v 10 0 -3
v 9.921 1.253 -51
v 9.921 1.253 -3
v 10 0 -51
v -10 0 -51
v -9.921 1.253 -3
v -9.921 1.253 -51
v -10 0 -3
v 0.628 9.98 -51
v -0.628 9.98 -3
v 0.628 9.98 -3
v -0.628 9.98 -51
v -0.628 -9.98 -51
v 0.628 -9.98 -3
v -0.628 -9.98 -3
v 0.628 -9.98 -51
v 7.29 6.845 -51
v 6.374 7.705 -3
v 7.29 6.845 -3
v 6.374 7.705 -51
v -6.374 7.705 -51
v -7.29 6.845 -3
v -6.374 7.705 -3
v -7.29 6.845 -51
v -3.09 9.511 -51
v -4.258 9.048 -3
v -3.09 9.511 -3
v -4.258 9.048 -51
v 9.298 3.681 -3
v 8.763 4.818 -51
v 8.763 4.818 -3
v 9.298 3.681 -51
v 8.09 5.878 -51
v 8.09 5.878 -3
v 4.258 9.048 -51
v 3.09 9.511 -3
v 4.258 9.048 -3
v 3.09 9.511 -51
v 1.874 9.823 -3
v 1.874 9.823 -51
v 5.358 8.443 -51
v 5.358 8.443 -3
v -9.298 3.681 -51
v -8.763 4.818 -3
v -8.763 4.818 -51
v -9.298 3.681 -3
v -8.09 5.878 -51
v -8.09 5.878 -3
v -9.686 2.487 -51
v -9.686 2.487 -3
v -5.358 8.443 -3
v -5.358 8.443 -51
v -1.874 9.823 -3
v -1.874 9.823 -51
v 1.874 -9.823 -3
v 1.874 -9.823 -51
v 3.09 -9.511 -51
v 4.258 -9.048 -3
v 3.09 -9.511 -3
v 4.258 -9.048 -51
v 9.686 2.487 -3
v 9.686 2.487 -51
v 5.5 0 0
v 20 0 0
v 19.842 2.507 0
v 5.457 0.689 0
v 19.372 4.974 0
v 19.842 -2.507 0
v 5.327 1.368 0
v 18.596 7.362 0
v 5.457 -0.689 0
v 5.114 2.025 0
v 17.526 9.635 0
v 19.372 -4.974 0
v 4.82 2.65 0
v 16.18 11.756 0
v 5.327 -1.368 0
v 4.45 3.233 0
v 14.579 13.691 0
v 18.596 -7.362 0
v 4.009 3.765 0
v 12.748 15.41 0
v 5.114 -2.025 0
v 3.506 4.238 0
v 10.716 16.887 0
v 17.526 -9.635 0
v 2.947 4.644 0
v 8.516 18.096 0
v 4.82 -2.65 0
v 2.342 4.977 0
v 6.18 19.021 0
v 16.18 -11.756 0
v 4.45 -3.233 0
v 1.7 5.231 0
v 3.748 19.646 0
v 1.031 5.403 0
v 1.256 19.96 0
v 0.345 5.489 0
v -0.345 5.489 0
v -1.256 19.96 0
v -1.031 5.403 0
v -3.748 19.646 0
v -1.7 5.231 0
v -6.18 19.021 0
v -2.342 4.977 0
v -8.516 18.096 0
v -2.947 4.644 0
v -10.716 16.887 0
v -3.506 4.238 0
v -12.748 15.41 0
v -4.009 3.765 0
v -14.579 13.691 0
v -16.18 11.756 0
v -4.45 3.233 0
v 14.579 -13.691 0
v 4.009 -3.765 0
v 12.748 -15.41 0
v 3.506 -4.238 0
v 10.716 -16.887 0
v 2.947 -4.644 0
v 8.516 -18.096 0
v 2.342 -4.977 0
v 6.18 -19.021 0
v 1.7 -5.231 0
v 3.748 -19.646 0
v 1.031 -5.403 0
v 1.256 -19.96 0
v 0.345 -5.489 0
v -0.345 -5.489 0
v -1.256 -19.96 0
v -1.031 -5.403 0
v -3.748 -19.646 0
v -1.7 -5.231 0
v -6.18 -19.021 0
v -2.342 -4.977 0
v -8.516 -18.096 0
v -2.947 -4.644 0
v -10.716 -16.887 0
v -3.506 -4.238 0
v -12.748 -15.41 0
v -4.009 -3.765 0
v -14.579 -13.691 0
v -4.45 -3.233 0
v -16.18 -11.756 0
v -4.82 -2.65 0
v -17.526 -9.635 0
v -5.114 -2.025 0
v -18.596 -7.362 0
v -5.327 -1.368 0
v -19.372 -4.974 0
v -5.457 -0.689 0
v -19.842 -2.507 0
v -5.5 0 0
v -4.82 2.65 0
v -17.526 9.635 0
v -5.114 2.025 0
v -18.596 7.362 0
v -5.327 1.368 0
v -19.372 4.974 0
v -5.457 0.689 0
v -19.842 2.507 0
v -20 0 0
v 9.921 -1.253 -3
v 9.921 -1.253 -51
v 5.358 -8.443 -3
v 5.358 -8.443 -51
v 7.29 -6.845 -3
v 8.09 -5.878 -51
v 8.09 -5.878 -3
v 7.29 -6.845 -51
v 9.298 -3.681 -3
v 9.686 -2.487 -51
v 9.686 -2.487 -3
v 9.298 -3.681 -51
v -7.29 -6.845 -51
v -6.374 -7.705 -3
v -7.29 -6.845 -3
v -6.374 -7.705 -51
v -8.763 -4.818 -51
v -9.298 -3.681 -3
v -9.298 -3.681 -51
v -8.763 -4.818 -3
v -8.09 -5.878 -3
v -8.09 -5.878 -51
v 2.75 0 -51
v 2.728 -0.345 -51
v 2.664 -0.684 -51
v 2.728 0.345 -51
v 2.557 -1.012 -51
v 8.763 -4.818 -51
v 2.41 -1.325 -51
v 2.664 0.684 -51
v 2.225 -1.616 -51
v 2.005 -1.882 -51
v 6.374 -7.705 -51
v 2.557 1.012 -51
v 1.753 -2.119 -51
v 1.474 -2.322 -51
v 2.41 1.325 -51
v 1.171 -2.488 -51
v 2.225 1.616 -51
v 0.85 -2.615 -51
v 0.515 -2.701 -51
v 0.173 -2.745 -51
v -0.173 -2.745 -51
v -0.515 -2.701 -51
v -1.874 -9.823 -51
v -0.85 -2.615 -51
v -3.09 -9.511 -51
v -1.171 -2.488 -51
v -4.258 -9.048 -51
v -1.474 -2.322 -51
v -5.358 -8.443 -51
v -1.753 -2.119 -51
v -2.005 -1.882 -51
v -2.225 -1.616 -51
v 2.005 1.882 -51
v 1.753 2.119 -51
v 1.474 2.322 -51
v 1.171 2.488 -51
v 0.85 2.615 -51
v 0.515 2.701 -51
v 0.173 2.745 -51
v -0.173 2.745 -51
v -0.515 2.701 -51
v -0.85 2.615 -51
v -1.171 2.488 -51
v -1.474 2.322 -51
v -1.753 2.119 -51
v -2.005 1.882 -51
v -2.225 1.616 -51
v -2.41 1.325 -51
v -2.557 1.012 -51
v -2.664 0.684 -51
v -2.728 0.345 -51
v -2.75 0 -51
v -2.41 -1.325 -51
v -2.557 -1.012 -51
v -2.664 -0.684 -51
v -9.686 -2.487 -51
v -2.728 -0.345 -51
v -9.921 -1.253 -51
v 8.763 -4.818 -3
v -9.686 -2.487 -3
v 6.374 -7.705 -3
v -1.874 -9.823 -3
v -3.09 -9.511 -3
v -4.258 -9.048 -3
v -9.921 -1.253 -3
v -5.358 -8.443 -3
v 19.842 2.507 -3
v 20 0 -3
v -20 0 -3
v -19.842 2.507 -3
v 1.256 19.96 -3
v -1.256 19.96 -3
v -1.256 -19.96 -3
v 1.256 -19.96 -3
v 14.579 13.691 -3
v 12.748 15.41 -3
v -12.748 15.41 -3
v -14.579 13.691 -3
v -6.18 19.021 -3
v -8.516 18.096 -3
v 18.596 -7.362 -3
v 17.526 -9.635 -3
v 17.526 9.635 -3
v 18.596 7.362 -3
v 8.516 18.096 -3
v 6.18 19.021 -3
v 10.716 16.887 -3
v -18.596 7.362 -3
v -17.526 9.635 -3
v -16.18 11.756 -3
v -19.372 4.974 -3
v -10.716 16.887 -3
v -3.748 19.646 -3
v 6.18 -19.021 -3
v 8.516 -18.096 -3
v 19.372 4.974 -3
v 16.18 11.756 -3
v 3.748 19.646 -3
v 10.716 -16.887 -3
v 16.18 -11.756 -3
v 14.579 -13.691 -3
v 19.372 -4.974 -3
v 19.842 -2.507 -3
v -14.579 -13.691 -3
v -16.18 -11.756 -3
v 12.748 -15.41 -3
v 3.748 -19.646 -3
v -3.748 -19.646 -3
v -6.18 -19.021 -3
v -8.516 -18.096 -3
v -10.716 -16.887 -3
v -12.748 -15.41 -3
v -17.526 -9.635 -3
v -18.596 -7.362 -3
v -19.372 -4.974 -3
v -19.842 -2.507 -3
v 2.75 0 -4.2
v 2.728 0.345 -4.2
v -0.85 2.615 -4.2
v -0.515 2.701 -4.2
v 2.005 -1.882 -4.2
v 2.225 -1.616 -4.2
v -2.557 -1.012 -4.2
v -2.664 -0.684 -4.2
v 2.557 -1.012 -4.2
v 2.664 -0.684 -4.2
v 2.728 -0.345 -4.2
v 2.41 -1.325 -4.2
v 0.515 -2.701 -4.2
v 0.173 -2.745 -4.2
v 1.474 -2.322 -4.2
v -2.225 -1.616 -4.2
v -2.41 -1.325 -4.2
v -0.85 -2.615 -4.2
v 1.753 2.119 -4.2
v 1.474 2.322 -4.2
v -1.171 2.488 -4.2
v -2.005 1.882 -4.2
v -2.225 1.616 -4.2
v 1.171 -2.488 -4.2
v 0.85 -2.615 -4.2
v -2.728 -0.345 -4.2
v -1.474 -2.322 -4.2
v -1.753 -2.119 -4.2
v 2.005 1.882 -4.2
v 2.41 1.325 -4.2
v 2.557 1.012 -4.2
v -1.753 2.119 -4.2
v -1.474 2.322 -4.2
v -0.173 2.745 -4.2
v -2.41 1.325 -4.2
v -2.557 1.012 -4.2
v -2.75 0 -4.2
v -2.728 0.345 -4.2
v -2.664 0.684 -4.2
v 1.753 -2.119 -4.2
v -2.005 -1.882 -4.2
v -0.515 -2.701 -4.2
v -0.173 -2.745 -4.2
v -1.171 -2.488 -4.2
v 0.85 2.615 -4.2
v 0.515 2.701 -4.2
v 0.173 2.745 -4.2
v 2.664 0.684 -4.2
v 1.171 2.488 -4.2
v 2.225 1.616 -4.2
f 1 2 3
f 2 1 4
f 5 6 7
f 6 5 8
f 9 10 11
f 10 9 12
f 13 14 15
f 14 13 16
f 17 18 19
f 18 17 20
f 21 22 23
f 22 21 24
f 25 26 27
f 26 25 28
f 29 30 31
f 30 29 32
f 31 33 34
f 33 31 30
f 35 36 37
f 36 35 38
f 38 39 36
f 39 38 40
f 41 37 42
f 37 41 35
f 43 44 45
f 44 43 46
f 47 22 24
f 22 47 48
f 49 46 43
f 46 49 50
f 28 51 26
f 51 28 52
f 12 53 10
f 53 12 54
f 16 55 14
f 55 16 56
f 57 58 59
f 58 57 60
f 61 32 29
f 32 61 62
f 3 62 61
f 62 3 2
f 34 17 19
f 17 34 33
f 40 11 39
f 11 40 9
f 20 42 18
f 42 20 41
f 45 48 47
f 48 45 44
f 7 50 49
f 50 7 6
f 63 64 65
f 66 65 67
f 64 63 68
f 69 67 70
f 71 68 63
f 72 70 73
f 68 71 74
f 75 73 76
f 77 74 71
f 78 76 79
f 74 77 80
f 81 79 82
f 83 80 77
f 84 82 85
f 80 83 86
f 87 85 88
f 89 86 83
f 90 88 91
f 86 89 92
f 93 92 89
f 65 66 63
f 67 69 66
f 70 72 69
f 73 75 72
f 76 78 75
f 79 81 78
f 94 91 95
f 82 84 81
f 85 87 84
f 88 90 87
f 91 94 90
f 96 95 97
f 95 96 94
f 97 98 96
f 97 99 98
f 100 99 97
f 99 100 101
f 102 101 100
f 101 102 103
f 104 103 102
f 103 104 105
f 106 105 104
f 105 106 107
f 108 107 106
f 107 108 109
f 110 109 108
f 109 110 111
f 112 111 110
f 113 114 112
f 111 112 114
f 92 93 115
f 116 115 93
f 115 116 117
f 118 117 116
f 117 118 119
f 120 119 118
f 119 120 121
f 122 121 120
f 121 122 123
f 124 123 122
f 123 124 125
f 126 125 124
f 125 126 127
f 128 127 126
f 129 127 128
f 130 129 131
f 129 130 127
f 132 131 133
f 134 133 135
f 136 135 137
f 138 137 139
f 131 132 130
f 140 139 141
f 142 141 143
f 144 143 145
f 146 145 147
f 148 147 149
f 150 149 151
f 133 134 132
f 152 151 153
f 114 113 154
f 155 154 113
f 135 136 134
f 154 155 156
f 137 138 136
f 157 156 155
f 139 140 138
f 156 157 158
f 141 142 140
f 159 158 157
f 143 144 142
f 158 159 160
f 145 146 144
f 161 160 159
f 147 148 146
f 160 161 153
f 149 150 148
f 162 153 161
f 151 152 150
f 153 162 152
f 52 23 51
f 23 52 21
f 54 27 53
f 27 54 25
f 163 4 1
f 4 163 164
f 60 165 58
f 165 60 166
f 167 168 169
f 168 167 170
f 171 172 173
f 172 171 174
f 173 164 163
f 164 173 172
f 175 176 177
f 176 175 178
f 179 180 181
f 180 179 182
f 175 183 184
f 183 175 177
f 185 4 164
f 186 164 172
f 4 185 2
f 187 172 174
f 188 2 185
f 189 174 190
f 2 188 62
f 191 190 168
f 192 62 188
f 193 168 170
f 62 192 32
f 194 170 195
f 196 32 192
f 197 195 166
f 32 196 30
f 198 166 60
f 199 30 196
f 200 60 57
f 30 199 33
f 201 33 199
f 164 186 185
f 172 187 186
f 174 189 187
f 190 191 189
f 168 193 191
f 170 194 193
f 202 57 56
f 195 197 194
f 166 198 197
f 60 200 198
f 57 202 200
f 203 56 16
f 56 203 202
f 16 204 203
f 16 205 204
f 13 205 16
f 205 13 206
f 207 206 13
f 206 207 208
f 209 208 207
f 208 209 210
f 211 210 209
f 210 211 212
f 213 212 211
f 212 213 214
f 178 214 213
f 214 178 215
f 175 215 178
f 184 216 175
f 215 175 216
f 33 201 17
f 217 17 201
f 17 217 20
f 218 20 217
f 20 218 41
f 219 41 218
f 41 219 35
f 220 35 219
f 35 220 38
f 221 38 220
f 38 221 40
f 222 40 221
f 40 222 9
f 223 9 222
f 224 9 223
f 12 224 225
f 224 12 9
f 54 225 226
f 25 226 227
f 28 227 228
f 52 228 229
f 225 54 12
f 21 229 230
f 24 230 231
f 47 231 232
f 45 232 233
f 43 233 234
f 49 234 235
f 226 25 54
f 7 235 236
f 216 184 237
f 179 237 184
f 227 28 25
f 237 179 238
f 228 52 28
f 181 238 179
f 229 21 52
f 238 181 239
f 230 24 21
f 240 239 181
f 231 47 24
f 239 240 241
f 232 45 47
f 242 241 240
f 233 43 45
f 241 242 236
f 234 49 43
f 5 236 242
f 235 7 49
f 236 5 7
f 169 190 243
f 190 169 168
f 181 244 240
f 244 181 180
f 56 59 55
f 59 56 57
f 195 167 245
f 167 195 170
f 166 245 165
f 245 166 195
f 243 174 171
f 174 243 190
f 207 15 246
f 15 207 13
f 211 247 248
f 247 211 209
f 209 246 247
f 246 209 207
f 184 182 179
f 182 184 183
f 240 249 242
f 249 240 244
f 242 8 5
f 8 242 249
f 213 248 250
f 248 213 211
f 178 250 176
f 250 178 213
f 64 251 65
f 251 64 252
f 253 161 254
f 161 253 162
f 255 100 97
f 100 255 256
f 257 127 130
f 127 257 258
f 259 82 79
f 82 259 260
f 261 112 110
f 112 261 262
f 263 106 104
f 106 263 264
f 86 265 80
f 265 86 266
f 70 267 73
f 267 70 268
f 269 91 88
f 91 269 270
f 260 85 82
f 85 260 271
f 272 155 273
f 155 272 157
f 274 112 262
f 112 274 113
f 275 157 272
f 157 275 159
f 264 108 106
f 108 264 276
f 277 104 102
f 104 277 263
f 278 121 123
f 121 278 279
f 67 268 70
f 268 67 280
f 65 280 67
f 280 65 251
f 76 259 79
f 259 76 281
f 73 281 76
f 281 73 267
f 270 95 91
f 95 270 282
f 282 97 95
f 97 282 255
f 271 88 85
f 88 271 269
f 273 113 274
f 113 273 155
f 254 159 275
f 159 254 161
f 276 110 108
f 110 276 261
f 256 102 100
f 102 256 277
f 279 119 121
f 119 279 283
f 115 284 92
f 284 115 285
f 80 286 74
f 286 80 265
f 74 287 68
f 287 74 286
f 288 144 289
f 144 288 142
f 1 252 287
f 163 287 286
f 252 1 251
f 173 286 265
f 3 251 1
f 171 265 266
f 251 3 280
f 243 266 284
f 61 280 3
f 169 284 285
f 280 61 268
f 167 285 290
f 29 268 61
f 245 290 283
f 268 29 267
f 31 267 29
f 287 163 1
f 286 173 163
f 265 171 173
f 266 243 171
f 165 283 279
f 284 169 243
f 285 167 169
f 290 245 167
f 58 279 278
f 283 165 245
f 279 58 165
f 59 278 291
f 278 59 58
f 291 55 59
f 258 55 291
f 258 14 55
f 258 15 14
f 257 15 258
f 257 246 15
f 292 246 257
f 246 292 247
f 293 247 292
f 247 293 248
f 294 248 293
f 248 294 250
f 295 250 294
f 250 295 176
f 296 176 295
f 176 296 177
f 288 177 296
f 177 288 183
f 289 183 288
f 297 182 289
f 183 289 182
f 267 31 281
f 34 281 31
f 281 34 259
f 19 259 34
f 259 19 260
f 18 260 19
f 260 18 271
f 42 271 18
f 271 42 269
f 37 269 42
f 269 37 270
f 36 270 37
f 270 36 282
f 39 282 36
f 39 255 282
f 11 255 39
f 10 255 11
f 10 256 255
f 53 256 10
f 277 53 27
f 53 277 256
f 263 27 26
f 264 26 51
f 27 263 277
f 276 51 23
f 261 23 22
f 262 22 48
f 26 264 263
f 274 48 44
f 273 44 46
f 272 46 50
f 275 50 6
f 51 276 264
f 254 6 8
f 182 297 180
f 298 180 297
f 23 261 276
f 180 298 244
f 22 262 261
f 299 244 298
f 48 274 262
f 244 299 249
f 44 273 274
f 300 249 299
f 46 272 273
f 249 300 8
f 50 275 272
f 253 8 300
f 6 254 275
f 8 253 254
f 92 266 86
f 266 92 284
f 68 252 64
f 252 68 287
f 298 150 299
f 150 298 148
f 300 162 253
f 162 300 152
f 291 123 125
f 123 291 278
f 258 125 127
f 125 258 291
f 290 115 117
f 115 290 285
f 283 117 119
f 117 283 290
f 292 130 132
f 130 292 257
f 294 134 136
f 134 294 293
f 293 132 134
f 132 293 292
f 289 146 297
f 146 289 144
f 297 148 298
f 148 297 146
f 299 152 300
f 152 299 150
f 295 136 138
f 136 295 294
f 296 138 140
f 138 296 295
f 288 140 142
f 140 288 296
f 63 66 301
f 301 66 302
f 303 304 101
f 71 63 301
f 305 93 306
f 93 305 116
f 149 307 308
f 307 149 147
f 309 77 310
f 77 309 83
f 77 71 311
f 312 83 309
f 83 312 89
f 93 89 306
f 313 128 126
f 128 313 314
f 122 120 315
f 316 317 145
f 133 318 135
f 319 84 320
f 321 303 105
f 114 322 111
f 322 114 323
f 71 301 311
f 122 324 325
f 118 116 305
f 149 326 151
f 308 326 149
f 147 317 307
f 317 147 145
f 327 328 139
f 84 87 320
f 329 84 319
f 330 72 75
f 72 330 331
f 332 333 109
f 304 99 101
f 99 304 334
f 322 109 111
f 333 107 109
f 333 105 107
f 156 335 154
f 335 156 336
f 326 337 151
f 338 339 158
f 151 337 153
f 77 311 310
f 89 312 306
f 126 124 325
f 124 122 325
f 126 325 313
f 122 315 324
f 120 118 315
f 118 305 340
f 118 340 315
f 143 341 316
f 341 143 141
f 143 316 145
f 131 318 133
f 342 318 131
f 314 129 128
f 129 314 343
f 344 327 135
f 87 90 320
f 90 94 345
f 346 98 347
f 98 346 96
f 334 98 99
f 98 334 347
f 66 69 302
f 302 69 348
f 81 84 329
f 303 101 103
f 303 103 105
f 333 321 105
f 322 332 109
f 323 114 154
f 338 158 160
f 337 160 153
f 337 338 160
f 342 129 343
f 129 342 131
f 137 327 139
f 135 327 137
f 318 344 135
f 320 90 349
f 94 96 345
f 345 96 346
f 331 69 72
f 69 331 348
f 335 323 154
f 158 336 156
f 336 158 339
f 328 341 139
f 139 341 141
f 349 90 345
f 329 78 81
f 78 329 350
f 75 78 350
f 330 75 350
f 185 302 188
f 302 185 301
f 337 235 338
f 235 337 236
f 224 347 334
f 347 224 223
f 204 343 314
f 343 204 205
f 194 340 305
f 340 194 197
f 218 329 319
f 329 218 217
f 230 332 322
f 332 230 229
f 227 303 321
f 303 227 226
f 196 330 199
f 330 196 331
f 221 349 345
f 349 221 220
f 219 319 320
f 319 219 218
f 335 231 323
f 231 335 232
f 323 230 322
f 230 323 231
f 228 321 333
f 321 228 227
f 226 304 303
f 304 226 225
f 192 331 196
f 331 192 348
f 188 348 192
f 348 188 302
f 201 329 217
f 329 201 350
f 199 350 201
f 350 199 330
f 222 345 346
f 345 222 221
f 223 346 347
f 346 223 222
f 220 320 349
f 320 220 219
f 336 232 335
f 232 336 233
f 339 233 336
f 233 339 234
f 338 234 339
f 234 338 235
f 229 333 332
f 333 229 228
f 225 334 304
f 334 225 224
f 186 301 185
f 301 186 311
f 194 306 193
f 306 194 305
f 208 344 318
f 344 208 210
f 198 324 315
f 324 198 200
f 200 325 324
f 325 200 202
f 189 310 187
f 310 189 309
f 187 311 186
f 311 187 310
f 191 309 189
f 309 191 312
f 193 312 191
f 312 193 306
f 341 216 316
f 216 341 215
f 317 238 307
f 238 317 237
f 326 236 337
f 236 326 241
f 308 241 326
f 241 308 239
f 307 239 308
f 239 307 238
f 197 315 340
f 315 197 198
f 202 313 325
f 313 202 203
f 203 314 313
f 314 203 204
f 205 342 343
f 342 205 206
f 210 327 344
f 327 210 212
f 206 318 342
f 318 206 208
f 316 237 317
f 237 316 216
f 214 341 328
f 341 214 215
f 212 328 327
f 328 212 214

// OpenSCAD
$fn = 50;


difference() {
	union() {
		translate(v = [0, 0, -51.0000000000]) {
			cylinder(h = 51, r = 10.0000000000);
		}
		translate(v = [0, 0, -3.0000000000]) {
			cylinder(h = 3, r = 20.0000000000);
		}
	}
	union() {
		translate(v = [0, 0, 0]) {
			rotate(a = [0, 0, 0]) {
				difference() {
					union() {
						#translate(v = [0, 0, -51.0000000000]) {
							cylinder(h = 51, r = 2.2500000000);
						}
						#translate(v = [0, 0, -4.2000000000]) {
							cylinder(h = 4.2000000000, r1 = 2.7500000000, r2 = 5.5000000000);
						}
						#translate(v = [0, 0, -51.0000000000]) {
							cylinder(h = 51, r = 2.7500000000);
						}
						#translate(v = [0, 0, -51.0000000000]) {
							cylinder(h = 51, r = 2.2500000000);
						}
					}
					union();
				}
			}
		}
	}
}
